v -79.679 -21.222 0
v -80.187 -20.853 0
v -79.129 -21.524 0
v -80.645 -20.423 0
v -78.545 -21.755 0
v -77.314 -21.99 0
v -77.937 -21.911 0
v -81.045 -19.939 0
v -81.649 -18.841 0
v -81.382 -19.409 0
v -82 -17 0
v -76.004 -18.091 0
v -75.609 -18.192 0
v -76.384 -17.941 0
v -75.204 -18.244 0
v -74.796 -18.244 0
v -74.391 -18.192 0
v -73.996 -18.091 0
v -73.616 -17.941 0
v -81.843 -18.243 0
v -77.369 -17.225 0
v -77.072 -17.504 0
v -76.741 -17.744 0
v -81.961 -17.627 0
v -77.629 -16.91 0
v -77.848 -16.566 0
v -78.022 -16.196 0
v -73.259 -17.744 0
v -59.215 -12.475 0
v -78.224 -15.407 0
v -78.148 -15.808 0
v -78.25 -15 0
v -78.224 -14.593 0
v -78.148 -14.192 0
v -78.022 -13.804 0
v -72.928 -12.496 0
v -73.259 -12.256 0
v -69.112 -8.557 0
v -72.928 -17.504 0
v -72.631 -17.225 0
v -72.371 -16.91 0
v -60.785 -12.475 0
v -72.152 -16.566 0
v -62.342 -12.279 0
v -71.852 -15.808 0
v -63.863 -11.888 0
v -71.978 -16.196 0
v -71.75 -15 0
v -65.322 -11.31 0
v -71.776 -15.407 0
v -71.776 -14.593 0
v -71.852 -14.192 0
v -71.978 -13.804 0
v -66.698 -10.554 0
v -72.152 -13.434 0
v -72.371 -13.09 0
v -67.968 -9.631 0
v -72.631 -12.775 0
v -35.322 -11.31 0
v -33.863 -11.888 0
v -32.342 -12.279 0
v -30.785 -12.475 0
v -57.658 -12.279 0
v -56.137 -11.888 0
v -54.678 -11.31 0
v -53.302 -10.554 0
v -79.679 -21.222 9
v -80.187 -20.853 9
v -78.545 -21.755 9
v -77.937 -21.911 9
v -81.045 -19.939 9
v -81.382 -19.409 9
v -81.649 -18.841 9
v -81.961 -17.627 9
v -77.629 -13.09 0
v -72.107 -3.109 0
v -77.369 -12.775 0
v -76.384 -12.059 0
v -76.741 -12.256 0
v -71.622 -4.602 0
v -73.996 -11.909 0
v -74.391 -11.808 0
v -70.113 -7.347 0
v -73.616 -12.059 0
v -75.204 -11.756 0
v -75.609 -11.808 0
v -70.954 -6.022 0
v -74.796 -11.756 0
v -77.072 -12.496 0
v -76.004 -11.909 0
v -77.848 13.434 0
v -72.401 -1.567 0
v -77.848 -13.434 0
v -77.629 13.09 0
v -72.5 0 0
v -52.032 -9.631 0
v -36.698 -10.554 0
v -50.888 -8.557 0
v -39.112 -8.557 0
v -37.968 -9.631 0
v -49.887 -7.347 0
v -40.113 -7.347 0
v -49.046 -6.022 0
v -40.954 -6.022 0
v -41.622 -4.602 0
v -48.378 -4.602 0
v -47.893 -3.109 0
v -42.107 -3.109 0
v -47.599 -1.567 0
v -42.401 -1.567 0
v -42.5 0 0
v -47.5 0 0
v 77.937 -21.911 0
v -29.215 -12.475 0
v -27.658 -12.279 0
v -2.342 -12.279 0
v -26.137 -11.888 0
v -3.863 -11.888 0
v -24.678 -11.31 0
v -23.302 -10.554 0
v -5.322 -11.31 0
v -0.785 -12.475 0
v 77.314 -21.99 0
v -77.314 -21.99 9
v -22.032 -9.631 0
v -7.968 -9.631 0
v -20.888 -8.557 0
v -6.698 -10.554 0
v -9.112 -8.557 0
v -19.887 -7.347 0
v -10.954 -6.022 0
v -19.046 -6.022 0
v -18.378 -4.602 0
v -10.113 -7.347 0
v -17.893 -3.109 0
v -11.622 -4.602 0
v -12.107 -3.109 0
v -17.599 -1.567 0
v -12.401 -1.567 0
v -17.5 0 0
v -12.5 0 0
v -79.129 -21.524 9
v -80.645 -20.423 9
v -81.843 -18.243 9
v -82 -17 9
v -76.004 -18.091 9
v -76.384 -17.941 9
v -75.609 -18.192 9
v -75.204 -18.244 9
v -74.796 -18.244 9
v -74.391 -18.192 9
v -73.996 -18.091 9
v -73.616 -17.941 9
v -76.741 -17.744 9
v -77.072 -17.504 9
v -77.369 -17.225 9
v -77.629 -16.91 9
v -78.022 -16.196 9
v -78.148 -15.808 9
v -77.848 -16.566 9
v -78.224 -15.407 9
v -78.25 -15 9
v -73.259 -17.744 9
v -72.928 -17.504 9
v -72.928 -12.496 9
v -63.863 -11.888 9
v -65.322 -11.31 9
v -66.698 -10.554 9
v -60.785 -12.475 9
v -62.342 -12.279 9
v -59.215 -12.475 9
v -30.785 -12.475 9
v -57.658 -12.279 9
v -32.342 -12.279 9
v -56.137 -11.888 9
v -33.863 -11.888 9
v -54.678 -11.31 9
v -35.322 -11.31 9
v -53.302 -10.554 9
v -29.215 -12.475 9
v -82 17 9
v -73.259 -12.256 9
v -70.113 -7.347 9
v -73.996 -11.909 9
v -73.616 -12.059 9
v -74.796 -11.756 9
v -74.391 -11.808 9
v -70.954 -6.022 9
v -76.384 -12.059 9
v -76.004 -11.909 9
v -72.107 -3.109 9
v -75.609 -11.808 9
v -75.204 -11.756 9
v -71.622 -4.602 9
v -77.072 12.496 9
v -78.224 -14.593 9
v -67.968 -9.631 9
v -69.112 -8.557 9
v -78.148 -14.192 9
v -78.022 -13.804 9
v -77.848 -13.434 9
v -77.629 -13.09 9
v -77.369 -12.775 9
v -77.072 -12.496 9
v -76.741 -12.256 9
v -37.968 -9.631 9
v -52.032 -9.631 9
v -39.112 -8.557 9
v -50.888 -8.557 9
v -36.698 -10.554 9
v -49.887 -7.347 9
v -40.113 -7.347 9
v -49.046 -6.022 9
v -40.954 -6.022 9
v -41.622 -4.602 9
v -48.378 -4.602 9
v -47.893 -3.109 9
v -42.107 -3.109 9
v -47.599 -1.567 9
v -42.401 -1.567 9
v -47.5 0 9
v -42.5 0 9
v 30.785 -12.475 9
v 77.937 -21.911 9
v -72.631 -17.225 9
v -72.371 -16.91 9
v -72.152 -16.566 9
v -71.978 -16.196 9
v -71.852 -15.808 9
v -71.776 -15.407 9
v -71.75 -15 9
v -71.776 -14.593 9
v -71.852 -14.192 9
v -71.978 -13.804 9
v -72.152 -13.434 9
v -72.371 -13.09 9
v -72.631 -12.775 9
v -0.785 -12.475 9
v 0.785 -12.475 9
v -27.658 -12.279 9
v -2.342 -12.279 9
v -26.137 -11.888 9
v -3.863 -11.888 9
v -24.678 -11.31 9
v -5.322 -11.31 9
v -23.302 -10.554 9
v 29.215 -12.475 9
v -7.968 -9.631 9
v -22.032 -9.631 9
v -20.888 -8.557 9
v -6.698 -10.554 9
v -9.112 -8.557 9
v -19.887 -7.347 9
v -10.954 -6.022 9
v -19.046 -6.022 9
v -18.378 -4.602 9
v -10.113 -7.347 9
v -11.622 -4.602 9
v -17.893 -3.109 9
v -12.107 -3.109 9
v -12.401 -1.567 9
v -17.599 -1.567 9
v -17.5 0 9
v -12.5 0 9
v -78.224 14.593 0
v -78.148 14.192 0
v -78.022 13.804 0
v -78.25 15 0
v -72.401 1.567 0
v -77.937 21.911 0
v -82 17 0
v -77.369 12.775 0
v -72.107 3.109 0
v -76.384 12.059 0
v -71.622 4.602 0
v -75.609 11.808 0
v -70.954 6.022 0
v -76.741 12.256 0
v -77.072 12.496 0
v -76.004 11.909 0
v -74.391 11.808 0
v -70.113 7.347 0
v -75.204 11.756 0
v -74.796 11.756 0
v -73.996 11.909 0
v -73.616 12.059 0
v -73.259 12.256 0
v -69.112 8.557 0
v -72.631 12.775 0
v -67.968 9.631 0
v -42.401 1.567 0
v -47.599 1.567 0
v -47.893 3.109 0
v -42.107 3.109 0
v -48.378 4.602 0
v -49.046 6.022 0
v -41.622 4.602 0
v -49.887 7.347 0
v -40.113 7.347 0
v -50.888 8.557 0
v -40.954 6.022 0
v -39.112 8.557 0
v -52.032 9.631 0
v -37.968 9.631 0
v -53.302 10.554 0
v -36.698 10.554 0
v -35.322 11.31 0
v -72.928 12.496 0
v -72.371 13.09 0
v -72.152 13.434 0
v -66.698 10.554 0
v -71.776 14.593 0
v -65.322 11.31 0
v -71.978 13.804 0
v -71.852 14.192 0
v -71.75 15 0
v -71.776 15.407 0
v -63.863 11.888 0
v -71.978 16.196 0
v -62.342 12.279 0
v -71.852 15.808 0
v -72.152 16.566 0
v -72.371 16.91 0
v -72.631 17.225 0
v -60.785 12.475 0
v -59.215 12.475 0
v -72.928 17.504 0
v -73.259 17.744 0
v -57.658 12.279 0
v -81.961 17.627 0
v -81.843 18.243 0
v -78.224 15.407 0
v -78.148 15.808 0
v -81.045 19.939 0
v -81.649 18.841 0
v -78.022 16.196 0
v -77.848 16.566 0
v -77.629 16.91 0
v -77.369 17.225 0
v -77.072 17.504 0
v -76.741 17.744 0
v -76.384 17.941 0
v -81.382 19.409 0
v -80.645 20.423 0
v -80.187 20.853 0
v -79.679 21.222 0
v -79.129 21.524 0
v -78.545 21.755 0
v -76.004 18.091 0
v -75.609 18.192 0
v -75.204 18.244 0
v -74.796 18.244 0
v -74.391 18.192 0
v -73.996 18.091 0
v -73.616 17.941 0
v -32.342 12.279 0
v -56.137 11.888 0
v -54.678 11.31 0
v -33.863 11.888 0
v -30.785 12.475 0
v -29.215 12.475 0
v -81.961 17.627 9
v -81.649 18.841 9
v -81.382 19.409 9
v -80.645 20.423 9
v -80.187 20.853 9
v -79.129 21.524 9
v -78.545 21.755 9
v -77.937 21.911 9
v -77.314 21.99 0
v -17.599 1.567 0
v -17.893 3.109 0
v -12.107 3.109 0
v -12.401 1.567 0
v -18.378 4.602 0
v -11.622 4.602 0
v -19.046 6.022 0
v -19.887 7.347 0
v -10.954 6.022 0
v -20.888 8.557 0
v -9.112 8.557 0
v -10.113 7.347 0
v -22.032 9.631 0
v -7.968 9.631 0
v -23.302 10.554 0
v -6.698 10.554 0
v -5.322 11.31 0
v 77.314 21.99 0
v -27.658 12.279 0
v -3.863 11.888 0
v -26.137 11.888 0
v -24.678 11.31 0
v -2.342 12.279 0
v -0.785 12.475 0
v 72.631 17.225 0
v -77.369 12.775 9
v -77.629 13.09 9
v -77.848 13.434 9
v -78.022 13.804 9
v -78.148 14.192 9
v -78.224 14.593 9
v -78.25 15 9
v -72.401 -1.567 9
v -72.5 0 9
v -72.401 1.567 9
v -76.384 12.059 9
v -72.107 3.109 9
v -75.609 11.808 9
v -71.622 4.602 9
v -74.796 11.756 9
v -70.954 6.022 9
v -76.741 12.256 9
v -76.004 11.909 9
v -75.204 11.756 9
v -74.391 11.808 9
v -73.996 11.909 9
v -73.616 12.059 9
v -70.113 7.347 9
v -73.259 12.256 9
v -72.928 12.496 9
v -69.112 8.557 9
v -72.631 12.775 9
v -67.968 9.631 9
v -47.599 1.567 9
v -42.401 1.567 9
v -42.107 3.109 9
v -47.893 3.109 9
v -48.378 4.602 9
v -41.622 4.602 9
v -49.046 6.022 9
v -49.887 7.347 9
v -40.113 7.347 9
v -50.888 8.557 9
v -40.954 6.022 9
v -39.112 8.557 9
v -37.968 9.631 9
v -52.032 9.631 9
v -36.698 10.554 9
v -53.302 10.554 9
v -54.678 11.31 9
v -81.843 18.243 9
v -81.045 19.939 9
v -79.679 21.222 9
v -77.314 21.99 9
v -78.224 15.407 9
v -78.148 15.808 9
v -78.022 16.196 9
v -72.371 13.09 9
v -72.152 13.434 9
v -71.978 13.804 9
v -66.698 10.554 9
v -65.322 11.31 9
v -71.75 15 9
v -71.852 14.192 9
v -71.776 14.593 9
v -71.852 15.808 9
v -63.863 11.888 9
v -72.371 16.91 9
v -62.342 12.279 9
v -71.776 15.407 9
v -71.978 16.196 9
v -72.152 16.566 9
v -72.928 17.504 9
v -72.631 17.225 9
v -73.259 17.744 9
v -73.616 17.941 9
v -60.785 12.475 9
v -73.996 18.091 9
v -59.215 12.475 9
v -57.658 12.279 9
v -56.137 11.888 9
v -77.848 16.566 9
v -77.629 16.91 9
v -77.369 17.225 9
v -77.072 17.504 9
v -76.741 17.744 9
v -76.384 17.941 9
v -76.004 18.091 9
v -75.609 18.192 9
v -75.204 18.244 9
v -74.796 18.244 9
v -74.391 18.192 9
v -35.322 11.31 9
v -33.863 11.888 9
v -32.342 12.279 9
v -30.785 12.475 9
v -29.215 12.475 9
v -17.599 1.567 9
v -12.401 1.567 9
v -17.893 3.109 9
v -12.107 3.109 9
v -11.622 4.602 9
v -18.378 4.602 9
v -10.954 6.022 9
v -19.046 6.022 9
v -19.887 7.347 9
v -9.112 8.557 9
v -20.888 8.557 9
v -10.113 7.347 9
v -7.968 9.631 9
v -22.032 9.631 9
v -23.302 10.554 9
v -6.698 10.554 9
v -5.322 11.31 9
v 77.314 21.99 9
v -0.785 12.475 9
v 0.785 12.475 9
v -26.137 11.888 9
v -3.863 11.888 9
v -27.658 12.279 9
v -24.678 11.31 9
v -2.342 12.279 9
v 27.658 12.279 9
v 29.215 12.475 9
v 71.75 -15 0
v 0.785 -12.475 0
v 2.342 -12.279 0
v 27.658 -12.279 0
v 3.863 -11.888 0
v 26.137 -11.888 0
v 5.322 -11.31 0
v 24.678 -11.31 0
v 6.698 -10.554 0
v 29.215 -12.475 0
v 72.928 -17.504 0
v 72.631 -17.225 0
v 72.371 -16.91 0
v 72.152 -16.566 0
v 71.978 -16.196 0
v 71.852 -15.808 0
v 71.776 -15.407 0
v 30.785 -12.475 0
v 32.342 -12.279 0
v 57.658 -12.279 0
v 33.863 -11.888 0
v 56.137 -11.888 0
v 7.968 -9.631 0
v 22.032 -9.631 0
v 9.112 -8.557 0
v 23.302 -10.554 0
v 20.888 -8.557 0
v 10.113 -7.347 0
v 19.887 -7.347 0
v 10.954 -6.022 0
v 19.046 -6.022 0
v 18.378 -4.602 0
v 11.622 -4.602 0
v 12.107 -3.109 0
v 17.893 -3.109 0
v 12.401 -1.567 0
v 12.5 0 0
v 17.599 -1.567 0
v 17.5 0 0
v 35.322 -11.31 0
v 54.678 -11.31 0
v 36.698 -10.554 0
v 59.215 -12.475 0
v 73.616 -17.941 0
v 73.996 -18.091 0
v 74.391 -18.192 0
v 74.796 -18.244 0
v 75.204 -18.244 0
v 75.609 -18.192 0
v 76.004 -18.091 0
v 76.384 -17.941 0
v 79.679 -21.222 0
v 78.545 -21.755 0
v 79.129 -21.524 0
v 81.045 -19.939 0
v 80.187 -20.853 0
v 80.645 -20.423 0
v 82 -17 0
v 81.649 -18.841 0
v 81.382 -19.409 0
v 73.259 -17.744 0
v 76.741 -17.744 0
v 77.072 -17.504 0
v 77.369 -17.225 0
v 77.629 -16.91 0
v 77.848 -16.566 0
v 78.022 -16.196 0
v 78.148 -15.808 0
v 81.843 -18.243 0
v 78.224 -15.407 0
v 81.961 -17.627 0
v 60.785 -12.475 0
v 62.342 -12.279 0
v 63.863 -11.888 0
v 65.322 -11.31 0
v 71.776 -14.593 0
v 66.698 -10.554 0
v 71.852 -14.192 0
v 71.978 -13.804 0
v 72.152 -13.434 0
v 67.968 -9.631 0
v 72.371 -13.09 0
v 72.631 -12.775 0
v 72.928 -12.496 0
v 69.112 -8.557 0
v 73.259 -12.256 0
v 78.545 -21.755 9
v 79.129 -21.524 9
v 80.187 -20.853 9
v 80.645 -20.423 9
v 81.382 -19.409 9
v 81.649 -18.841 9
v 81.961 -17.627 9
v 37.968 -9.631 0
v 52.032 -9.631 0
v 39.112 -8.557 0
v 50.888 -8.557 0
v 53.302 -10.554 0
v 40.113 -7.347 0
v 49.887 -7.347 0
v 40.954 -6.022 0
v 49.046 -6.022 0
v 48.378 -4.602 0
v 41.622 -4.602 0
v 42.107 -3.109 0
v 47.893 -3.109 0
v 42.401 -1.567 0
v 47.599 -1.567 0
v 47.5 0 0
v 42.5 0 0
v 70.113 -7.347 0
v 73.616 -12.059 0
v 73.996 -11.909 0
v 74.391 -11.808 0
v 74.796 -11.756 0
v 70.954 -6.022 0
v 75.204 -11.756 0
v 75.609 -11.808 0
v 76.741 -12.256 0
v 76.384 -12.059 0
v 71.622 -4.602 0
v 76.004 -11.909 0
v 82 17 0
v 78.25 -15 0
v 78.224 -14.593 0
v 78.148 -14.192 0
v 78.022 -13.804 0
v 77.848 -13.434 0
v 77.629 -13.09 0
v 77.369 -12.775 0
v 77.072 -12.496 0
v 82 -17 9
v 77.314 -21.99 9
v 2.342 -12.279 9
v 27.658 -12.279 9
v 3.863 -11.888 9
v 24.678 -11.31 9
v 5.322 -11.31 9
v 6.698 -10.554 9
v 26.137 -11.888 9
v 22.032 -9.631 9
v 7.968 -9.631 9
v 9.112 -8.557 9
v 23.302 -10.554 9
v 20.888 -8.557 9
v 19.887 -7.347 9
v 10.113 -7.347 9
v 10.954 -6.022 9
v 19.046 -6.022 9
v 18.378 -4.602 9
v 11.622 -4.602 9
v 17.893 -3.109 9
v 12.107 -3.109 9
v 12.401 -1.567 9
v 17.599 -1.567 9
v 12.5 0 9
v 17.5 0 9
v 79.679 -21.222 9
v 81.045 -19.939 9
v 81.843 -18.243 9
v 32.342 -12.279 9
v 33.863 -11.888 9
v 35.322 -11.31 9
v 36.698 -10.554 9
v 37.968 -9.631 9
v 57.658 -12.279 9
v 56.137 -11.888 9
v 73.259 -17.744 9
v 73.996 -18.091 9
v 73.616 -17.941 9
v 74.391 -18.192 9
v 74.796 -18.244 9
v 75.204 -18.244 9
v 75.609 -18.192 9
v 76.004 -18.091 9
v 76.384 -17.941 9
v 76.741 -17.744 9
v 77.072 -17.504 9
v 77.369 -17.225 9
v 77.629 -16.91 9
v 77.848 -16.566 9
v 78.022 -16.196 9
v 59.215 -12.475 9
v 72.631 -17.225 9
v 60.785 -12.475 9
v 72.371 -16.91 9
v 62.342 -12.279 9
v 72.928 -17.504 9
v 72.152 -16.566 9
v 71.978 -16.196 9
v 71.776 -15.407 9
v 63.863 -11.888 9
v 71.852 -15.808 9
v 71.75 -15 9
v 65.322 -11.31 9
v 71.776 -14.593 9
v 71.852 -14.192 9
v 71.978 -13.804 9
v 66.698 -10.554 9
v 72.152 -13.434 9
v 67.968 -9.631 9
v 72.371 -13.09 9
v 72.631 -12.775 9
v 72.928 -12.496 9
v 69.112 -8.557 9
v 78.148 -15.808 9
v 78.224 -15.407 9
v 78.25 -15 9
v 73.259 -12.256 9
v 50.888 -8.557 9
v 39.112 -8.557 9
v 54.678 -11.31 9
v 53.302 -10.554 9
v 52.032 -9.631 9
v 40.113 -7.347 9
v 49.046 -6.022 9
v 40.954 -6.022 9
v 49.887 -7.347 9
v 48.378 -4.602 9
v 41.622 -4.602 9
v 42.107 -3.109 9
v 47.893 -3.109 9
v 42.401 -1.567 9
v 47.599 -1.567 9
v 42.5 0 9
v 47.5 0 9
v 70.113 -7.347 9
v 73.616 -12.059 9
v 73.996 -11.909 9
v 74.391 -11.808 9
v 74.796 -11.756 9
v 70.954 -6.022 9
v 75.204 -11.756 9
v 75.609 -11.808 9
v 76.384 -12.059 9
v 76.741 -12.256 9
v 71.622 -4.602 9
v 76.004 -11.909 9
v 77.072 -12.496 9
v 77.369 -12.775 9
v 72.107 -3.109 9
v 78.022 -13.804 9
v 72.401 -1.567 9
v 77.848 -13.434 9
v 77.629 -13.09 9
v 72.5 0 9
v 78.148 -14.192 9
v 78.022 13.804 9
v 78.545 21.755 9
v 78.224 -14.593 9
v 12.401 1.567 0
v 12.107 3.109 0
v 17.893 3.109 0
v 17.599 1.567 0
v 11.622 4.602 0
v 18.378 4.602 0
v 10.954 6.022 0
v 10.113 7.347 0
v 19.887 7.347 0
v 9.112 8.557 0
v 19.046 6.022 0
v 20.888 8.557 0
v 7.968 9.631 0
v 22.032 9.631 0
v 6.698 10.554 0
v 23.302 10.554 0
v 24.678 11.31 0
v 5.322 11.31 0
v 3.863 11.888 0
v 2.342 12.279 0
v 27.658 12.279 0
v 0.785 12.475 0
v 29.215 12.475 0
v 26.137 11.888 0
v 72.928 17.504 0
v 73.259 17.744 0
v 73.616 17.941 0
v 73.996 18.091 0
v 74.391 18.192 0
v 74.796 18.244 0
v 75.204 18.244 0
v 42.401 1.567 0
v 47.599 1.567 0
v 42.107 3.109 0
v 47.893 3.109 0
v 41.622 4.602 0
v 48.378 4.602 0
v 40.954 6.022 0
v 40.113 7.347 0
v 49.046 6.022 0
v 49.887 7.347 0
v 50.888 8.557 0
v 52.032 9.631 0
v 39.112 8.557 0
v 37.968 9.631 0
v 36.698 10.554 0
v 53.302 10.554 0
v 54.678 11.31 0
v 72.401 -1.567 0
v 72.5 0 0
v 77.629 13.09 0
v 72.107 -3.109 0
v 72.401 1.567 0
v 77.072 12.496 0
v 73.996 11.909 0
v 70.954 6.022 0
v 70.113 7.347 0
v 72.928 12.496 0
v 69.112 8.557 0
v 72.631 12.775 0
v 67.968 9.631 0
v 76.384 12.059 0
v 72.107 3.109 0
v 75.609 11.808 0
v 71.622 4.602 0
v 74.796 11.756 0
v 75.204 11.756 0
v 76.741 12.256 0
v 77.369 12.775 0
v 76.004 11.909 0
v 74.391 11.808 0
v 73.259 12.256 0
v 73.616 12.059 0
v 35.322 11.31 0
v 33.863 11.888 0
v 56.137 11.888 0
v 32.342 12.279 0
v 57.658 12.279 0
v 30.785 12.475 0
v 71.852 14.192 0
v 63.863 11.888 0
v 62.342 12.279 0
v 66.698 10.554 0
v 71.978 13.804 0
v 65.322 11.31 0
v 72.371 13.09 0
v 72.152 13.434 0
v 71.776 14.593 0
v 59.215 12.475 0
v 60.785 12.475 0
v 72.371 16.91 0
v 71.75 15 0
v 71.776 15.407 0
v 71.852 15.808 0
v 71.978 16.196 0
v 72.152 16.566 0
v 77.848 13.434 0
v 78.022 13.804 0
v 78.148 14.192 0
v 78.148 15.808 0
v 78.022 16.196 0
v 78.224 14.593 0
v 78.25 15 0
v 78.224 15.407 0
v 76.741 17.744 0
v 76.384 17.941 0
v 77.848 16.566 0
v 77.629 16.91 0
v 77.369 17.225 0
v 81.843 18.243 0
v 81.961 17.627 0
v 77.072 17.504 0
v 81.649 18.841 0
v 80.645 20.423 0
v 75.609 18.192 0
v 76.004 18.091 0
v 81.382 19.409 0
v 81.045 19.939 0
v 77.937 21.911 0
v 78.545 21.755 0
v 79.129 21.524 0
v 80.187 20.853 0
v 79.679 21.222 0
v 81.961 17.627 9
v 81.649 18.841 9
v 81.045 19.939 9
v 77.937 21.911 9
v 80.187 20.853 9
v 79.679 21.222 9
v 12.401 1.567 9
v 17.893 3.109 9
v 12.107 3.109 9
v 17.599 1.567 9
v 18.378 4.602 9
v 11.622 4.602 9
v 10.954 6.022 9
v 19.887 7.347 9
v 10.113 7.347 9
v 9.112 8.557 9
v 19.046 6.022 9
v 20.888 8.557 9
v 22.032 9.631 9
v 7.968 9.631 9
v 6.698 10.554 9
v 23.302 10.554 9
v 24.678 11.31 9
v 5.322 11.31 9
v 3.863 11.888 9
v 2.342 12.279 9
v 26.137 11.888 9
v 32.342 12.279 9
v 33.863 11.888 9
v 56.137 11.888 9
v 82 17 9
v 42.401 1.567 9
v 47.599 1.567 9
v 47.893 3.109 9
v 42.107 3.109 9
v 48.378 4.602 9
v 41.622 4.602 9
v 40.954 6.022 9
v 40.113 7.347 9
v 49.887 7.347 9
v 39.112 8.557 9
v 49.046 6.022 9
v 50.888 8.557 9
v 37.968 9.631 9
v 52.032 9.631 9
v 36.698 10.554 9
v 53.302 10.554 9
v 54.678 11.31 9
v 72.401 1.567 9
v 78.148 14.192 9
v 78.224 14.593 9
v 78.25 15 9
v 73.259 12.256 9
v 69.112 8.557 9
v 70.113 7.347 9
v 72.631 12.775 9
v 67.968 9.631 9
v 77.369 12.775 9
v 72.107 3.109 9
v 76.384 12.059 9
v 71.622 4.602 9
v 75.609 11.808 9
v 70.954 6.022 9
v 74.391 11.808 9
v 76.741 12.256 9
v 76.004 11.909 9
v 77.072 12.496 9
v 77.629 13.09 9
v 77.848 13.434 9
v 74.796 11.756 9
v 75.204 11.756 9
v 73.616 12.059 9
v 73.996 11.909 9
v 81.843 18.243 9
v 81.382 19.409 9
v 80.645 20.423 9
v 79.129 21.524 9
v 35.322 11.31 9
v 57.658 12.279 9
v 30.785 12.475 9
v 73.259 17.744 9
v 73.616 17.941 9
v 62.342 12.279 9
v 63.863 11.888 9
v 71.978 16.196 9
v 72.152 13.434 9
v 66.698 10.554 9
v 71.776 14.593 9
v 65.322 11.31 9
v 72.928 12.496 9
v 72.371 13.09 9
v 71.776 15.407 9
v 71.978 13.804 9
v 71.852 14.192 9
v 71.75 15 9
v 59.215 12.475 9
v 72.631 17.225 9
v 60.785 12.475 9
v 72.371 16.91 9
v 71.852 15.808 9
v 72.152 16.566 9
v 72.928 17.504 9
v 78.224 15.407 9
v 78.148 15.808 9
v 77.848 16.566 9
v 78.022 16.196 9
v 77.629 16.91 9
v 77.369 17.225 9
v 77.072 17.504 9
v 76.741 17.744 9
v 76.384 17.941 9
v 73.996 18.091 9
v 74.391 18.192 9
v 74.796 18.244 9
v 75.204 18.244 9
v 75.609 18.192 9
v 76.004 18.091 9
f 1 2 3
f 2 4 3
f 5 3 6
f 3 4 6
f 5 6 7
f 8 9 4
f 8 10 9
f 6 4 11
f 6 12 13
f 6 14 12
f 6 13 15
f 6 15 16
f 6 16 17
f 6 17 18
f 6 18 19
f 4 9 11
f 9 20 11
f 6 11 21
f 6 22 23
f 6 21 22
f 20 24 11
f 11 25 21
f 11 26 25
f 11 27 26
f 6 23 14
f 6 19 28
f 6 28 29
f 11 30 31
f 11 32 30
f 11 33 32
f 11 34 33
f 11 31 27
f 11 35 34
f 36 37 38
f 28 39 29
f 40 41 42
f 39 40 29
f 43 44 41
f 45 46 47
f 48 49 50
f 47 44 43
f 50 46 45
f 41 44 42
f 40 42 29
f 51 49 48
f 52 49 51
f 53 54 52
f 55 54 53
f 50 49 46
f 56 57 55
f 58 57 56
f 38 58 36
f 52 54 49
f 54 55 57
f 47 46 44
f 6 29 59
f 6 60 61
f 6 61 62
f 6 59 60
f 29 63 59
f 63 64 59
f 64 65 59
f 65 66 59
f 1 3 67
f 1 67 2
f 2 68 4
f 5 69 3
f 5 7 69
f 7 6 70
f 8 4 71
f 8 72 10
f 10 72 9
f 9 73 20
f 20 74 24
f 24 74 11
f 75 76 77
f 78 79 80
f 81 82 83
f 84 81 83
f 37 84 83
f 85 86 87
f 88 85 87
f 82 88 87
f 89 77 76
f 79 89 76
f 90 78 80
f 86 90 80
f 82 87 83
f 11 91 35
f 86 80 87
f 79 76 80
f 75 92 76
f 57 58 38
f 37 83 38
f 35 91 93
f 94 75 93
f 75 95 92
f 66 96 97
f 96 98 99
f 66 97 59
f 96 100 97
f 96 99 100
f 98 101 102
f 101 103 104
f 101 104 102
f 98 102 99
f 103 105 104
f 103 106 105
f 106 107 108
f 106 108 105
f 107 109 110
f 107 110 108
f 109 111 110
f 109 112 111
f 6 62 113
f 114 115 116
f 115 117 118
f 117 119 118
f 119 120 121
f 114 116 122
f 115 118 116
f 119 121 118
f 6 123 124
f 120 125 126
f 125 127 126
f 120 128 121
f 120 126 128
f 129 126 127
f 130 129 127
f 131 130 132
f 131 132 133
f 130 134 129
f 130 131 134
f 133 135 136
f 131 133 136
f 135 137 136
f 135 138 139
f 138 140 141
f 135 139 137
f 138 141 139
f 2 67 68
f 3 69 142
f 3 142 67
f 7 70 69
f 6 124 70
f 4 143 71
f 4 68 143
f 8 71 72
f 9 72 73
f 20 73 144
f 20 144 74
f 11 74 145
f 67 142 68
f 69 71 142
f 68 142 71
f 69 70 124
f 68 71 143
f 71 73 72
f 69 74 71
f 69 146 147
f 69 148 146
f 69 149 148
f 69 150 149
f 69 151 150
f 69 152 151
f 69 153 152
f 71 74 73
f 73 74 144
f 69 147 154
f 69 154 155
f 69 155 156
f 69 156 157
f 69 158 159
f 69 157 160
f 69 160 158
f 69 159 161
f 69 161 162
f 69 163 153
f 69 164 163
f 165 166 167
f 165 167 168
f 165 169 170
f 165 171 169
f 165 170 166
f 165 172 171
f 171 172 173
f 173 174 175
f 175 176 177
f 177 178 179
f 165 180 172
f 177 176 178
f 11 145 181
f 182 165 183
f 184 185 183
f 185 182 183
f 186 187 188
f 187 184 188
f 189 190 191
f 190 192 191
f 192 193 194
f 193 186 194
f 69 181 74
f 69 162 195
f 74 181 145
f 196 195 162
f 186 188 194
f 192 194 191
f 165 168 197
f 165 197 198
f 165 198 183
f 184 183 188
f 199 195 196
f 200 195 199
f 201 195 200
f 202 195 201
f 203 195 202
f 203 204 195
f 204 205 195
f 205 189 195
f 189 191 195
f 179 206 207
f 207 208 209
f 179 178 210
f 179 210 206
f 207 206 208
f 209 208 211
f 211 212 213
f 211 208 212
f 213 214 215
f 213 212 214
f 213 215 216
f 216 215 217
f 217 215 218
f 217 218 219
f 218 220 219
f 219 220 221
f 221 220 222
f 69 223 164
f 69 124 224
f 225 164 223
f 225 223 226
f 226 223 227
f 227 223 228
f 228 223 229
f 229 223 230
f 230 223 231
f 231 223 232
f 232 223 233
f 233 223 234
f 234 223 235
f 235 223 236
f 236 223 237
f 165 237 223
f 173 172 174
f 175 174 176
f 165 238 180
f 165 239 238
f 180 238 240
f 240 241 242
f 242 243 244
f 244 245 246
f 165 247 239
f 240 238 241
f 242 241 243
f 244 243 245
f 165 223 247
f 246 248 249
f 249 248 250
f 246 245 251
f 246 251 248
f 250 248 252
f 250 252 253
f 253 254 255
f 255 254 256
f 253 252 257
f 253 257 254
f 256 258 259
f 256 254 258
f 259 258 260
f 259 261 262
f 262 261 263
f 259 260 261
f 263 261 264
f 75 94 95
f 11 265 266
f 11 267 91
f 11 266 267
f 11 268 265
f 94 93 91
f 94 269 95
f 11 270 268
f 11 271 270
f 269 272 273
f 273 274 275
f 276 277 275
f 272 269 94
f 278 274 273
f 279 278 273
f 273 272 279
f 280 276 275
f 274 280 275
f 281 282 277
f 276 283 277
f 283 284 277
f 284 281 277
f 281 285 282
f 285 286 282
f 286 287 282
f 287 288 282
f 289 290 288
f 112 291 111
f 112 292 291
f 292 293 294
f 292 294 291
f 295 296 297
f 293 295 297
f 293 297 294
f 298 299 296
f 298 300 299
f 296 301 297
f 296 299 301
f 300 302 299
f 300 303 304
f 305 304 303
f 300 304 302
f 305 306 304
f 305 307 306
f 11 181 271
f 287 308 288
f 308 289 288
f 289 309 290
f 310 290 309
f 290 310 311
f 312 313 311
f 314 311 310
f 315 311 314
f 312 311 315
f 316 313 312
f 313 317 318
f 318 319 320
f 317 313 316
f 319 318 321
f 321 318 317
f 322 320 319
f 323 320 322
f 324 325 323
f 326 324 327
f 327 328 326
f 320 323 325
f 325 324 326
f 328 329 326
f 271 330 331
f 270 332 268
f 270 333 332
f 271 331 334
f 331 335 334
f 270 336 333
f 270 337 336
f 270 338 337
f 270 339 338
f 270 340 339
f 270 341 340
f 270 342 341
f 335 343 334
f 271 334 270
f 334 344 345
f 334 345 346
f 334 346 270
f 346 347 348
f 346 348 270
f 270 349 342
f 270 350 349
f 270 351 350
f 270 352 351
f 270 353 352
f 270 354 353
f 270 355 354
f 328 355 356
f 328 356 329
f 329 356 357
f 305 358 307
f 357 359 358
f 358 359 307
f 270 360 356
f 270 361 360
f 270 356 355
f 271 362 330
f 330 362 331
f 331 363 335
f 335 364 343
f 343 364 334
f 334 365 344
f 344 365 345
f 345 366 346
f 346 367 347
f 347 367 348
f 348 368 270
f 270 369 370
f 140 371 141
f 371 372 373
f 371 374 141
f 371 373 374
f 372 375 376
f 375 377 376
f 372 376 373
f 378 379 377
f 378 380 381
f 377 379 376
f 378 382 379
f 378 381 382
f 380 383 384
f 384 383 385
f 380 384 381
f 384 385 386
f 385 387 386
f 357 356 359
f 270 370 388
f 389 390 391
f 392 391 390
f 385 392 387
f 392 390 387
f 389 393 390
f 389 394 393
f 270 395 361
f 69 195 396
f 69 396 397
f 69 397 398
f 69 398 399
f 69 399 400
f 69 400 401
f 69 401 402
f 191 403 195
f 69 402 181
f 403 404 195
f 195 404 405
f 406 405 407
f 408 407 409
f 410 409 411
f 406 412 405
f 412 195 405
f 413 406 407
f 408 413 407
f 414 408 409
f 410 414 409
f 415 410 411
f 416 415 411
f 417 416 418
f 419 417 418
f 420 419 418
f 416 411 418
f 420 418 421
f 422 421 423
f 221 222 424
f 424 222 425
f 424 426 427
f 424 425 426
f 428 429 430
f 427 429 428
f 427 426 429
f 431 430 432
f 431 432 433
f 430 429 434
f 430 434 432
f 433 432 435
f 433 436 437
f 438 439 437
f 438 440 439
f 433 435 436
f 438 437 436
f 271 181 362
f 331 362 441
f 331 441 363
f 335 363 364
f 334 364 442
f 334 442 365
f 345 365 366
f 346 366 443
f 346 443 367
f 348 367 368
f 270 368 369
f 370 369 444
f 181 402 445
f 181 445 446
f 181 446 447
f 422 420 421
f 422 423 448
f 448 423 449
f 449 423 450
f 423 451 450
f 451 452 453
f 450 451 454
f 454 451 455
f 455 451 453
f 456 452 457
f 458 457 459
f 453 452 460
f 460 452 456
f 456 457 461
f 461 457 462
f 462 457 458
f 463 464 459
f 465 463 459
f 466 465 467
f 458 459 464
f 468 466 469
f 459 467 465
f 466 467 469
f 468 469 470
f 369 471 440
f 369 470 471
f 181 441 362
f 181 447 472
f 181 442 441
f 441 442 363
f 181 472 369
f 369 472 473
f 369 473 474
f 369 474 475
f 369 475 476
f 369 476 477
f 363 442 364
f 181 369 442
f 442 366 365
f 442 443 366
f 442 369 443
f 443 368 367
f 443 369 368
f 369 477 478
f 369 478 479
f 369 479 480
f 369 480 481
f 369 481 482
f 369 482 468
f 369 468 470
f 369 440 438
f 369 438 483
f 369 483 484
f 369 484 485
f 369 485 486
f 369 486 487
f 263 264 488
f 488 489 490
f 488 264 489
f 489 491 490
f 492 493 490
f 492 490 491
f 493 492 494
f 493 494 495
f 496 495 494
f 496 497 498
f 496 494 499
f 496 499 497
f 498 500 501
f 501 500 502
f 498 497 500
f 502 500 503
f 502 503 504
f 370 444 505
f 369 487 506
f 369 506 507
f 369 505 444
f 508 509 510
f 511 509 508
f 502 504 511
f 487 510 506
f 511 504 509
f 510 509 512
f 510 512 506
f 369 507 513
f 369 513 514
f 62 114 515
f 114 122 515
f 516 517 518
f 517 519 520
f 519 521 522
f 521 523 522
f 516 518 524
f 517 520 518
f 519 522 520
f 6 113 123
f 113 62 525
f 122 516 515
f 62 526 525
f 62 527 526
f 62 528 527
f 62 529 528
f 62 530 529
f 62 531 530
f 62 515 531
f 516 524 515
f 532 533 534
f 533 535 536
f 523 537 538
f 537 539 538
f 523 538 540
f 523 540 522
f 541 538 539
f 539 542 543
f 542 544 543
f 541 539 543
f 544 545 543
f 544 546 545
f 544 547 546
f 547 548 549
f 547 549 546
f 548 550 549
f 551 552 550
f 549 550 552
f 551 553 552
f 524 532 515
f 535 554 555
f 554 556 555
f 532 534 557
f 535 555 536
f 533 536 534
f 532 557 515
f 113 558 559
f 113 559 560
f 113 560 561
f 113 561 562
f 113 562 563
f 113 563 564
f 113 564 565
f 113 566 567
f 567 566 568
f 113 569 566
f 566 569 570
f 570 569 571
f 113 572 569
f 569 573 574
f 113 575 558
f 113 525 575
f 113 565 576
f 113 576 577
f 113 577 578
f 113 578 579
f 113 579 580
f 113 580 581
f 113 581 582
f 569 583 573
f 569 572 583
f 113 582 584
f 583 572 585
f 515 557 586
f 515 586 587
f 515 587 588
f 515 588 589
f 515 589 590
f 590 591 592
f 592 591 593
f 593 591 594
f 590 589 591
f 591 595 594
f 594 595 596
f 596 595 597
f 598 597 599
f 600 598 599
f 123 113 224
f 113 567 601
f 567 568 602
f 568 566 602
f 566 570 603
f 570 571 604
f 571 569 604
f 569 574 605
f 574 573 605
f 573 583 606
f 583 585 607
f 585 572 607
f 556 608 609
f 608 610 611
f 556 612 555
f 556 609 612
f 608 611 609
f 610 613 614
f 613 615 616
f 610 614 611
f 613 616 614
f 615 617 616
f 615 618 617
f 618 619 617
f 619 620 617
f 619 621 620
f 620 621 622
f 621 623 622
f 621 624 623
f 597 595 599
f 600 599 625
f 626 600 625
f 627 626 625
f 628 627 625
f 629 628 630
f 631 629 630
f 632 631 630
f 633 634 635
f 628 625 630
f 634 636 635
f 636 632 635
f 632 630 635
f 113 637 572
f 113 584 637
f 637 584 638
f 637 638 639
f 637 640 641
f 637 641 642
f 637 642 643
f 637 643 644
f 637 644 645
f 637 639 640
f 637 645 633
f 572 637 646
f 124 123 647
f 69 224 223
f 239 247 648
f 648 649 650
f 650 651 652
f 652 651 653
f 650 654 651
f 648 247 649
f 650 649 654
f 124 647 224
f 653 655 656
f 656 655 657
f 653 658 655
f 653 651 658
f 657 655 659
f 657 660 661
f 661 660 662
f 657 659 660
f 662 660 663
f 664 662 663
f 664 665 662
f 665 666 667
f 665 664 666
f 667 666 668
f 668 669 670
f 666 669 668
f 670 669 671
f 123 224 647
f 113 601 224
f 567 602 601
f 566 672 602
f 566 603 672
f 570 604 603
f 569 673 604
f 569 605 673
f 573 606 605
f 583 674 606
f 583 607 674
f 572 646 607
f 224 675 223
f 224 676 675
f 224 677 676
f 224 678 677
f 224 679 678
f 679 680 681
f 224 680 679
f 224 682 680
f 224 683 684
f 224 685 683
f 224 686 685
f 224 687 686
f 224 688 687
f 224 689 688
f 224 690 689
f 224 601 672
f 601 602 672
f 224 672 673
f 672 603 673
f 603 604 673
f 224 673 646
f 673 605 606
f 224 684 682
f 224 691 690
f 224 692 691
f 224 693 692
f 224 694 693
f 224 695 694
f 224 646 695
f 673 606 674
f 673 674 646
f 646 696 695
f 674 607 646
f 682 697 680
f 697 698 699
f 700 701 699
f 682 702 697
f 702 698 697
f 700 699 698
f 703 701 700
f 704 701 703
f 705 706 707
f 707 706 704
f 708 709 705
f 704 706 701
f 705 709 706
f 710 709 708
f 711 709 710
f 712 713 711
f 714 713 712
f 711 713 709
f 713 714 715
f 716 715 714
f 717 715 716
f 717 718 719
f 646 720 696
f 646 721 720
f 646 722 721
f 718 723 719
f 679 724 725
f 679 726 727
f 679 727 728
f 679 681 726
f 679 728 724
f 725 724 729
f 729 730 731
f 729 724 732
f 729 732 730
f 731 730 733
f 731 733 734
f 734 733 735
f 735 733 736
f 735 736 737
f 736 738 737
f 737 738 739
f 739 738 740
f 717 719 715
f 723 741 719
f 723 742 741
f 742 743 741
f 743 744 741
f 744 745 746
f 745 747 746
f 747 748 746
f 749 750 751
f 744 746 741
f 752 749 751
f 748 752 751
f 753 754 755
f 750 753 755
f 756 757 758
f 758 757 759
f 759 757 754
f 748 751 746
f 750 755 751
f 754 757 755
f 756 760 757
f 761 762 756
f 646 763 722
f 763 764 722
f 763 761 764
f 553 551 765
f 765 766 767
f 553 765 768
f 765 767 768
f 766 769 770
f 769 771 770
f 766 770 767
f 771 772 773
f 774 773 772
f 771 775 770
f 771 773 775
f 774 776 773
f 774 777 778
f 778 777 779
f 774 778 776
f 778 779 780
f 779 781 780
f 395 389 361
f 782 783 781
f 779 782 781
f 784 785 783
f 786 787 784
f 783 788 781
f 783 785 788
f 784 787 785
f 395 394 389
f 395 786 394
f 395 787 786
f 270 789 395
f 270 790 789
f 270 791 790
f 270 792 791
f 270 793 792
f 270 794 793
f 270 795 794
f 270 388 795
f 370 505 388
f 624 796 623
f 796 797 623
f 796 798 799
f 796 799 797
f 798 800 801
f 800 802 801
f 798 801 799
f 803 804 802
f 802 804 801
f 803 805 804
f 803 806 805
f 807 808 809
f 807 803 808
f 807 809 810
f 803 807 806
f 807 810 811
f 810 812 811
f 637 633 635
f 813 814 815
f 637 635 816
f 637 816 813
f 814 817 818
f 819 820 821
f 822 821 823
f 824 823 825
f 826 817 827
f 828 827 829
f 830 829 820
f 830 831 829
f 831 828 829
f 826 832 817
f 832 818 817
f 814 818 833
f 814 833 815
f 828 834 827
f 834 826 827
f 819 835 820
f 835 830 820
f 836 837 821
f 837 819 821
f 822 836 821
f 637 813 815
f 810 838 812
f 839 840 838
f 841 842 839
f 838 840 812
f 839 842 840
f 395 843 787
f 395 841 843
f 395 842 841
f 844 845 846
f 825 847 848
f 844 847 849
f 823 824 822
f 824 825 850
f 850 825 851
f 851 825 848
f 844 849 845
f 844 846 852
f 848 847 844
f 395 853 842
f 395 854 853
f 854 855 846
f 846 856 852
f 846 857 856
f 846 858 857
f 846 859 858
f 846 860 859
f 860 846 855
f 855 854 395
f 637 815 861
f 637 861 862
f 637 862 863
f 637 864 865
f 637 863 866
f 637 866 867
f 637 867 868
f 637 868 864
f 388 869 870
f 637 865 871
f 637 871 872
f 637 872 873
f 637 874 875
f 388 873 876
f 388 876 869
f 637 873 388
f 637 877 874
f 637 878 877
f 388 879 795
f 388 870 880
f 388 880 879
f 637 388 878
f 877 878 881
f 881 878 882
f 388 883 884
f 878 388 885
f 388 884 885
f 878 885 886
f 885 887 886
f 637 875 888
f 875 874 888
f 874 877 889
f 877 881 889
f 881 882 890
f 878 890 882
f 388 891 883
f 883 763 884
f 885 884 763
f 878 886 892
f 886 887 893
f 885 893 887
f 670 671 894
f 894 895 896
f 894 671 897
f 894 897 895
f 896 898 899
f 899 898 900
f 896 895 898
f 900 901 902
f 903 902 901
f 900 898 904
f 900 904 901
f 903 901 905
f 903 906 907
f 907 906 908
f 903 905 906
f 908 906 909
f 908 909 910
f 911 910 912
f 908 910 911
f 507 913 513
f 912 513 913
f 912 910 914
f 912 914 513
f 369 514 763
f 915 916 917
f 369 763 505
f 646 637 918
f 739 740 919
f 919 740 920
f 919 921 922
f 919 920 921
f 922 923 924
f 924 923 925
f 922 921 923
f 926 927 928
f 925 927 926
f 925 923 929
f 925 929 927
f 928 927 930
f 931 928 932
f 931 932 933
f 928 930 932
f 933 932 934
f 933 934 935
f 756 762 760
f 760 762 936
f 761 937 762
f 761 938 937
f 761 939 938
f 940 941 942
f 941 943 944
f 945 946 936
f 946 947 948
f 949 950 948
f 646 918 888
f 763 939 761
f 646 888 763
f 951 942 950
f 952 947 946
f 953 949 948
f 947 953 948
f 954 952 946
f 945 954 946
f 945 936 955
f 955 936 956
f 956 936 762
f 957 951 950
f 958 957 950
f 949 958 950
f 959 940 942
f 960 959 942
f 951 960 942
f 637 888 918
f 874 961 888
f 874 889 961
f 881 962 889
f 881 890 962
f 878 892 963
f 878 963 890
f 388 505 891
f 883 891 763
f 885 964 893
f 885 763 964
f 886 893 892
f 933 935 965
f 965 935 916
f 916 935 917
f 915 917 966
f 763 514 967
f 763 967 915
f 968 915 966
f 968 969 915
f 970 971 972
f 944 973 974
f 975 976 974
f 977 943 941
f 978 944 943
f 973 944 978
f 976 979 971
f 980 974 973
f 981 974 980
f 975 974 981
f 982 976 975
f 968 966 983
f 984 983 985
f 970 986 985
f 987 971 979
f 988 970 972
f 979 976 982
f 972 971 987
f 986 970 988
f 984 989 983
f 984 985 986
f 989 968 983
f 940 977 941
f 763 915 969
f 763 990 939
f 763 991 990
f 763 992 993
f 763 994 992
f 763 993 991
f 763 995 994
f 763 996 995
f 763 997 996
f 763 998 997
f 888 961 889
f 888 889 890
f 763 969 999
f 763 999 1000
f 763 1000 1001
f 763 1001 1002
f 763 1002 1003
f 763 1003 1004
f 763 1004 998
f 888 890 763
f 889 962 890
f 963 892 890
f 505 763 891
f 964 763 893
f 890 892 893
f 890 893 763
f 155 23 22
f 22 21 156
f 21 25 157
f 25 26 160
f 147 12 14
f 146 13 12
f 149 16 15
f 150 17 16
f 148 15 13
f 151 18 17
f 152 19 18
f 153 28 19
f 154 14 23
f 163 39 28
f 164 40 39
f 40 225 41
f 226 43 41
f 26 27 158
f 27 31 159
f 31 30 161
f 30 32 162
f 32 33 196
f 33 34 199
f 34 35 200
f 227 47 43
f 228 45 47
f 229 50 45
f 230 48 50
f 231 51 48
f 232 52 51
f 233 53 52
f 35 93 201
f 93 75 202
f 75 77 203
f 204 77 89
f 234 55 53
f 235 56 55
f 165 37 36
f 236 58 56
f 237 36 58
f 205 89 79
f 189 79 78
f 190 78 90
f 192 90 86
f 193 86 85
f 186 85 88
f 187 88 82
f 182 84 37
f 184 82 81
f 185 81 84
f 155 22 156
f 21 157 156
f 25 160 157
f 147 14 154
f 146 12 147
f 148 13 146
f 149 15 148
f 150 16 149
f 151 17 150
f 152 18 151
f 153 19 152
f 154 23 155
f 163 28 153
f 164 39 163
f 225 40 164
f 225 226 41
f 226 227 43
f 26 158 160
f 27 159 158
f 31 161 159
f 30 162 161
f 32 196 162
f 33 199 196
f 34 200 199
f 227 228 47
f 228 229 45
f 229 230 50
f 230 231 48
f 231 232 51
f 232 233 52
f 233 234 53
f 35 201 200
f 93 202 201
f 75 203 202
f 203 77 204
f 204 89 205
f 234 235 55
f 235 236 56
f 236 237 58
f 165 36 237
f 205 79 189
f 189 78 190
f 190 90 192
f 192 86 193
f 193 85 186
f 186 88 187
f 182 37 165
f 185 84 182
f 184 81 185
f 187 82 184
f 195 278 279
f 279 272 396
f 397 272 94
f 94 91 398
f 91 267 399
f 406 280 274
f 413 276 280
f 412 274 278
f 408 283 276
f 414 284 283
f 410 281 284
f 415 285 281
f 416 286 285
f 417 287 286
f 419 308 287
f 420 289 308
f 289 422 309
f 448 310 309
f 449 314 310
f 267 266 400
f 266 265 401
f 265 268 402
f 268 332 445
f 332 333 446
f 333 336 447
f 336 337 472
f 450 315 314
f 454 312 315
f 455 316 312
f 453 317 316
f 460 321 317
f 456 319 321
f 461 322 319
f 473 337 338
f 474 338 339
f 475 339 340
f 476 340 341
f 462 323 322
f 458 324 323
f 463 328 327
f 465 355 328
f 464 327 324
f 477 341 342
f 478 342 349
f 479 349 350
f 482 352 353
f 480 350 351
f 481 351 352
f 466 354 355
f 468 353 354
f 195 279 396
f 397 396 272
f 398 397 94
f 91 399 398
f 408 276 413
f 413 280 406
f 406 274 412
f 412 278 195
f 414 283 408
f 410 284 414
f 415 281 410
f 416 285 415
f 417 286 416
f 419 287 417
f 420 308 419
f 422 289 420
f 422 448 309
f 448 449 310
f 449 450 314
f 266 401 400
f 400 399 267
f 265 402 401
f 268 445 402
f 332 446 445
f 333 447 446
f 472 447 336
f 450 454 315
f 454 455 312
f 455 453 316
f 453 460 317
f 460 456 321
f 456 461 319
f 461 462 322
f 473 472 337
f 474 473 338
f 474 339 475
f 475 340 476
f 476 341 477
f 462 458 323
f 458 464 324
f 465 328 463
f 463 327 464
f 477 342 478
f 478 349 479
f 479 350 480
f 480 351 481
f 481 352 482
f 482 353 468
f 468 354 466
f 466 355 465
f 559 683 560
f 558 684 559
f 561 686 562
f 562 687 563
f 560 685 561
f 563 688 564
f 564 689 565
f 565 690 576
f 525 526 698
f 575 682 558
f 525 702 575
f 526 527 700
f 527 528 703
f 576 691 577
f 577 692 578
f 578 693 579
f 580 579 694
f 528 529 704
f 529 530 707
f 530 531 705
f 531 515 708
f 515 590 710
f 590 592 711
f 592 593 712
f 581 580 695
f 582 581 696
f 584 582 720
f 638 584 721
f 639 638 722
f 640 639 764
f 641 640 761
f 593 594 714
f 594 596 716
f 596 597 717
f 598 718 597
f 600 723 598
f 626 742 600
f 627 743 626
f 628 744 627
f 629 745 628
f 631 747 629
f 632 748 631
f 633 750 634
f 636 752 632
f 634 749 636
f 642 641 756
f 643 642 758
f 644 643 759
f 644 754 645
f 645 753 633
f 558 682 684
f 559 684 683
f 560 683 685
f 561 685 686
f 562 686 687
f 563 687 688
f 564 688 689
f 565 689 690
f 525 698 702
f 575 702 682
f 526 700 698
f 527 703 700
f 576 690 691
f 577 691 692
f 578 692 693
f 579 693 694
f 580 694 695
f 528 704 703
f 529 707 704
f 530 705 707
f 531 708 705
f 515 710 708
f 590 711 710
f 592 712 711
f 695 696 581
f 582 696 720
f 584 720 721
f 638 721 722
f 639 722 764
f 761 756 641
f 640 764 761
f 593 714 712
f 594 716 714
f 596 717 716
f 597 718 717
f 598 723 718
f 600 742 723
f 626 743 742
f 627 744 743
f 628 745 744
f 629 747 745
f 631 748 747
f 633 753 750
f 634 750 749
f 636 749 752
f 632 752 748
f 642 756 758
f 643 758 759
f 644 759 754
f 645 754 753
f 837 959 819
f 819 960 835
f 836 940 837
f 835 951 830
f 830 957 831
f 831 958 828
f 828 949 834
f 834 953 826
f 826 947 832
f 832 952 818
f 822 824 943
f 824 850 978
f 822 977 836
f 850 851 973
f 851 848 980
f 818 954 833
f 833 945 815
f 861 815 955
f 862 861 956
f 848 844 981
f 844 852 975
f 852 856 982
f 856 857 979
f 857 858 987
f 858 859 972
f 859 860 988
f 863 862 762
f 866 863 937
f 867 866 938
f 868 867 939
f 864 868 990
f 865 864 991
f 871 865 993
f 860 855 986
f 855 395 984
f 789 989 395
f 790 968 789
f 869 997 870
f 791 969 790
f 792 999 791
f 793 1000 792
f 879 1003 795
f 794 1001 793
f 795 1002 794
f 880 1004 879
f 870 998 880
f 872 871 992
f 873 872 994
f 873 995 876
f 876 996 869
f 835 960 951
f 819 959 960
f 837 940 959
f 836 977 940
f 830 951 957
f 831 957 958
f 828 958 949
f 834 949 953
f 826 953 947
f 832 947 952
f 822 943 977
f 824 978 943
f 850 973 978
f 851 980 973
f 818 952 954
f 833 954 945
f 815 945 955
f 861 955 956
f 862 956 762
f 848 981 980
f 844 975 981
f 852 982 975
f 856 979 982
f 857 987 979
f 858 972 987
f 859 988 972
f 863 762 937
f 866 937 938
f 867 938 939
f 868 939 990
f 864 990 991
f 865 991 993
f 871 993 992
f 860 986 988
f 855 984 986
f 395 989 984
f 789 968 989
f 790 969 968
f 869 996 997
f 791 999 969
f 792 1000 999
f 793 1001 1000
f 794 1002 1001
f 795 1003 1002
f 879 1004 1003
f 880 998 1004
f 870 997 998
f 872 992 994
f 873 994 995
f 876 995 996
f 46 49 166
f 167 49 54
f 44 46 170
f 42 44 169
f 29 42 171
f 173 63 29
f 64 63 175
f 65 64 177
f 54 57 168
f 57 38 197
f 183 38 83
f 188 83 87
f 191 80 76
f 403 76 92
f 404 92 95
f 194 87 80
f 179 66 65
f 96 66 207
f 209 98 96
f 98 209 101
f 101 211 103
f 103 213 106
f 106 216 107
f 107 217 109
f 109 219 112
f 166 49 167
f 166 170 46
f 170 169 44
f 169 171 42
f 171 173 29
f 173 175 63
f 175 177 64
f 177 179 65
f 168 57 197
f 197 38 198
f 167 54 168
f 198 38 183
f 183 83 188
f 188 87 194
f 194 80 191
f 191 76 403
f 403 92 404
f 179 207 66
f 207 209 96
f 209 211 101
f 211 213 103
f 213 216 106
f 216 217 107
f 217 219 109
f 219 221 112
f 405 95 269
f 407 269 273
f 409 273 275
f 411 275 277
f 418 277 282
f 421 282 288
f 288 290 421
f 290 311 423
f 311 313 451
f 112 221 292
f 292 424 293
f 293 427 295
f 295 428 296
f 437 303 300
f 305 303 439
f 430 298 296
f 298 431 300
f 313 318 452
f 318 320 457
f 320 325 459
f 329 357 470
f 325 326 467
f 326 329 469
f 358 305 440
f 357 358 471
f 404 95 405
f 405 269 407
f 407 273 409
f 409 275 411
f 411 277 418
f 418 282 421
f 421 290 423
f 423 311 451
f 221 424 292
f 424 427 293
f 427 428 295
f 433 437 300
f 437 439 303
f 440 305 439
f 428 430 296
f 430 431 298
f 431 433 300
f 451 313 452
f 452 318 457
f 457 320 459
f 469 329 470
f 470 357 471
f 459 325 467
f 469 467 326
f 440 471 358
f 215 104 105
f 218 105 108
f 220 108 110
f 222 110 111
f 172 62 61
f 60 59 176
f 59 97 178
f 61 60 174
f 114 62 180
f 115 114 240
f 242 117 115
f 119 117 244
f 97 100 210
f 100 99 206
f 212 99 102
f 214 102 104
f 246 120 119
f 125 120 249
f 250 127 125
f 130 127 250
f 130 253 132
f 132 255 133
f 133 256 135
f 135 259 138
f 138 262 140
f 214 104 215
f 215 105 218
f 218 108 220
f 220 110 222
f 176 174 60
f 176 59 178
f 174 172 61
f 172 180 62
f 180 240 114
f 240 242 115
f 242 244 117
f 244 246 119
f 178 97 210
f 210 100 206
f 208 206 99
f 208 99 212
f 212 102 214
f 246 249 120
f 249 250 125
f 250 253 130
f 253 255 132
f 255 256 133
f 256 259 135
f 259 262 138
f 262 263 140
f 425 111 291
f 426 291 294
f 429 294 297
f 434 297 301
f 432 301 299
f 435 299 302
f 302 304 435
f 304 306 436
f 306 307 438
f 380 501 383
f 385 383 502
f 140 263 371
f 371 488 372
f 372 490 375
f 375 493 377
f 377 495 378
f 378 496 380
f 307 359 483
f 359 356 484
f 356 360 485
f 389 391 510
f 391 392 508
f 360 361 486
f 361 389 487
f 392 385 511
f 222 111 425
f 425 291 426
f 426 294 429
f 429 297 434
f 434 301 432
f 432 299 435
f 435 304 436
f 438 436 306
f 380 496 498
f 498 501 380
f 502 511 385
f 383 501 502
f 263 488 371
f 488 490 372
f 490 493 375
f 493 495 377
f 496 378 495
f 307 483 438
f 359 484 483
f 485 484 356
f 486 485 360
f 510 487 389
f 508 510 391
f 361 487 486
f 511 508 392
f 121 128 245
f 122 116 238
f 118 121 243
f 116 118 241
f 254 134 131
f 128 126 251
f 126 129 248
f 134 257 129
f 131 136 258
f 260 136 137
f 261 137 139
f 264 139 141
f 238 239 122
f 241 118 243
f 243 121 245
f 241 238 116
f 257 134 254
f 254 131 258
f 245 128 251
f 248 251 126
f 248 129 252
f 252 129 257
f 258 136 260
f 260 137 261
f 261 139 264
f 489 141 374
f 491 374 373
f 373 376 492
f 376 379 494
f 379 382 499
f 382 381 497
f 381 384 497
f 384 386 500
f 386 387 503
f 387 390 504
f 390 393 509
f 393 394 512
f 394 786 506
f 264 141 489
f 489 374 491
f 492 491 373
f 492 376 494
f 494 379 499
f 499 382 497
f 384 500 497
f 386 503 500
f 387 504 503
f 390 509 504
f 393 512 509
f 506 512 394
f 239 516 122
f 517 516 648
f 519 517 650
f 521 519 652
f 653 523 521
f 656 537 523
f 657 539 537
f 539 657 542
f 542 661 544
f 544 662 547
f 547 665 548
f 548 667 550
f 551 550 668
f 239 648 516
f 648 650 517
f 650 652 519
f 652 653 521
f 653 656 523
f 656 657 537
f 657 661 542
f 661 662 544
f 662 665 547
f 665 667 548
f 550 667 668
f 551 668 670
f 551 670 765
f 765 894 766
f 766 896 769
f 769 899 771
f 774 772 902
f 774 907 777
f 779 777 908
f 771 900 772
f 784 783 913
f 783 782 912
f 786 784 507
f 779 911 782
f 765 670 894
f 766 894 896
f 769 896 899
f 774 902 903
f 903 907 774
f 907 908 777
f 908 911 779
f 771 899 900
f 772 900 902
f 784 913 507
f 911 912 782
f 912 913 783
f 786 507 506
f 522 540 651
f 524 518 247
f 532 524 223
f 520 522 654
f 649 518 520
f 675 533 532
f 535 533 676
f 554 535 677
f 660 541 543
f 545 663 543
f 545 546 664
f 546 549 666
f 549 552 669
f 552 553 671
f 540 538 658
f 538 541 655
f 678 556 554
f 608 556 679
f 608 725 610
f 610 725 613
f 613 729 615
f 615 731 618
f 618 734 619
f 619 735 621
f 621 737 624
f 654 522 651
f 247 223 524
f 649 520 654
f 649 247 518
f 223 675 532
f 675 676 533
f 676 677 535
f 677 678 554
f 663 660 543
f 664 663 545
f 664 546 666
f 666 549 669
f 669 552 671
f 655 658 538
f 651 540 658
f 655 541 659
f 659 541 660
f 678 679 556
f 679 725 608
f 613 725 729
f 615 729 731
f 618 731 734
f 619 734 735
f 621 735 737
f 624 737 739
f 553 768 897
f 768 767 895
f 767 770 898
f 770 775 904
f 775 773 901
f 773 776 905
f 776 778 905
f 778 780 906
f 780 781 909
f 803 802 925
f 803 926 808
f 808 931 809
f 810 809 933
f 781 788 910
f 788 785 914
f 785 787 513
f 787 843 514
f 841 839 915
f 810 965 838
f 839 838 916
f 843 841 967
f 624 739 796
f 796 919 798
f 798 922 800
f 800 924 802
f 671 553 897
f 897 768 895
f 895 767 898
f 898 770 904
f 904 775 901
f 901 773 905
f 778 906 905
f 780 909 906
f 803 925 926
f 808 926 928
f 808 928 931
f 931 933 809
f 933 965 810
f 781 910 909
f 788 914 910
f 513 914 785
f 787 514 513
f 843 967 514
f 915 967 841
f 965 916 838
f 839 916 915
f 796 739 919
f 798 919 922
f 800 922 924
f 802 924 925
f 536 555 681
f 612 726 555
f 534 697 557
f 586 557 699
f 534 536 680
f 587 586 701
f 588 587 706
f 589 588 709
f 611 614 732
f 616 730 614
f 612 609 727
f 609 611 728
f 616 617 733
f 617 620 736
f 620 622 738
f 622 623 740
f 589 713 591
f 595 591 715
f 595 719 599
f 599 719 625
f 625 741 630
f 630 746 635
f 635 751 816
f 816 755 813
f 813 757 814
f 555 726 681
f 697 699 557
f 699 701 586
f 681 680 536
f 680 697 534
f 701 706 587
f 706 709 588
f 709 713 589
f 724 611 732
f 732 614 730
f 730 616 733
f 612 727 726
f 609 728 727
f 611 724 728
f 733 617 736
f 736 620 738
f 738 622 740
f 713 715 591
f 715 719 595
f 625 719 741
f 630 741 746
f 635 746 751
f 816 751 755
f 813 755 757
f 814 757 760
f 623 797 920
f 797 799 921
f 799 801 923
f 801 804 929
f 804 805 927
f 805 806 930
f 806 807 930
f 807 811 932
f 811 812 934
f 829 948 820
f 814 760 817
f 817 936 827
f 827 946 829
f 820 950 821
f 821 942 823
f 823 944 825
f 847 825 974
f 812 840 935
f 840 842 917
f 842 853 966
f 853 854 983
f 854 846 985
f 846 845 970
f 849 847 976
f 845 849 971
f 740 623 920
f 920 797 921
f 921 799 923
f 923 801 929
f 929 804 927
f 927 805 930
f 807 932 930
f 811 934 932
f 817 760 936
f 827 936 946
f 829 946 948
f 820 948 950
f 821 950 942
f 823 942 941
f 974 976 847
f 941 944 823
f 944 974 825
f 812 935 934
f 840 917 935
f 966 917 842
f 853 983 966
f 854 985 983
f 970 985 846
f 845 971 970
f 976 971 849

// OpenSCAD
$fn = 50;

difference() {
	union() {
		hull() {
			translate(v = [-77.0, 17.0, 0]) {
				cylinder(h = 9, r = 5);
			}
			translate(v = [77.0, 17.0, 0]) {
				cylinder(h = 9, r = 5);
			}
			translate(v = [-77.0, -17.0, 0]) {
				cylinder(h = 9, r = 5);
			}
			translate(v = [77.0, -17.0, 0]) {
				cylinder(h = 9, r = 5);
			}
		}
	}
	union() {
		translate(v = [-75.0, -15.0, -100.0]) {
			cylinder(h = 200, r = 3.25);
		}
		translate(v = [-75.0, 15.0, -100.0]) {
			cylinder(h = 200, r = 3.25);
		}
		translate(v = [75.0, -15.0, -100.0]) {
			cylinder(h = 200, r = 3.25);
		}
		translate(v = [75.0, 15.0, -100.0]) {
			cylinder(h = 200, r = 3.25);
		}
		translate(v = [-75.0, -15.0, -100.0]) {
			cylinder(h = 200, r = 1.8);
		}
		translate(v = [-75.0, 15.0, -100.0]) {
			cylinder(h = 200, r = 1.8);
		}
		translate(v = [75.0, -15.0, -100.0]) {
			cylinder(h = 200, r = 1.8);
		}
		translate(v = [75.0, 15.0, -100.0]) {
			cylinder(h = 200, r = 1.8);
		}
		translate(v = [-60.0, 0, 0.0]) {
			cylinder(h = 9, r = 12.5);
		}
		translate(v = [-30.0, 0, 0.0]) {
			cylinder(h = 9, r = 12.5);
		}
		cylinder(h = 9, r = 12.5);
		translate(v = [30.0, 0, 0.0]) {
			cylinder(h = 9, r = 12.5);
		}
		translate(v = [60.0, 0, 0.0]) {
			cylinder(h = 9, r = 12.5);
		}
	}
}
